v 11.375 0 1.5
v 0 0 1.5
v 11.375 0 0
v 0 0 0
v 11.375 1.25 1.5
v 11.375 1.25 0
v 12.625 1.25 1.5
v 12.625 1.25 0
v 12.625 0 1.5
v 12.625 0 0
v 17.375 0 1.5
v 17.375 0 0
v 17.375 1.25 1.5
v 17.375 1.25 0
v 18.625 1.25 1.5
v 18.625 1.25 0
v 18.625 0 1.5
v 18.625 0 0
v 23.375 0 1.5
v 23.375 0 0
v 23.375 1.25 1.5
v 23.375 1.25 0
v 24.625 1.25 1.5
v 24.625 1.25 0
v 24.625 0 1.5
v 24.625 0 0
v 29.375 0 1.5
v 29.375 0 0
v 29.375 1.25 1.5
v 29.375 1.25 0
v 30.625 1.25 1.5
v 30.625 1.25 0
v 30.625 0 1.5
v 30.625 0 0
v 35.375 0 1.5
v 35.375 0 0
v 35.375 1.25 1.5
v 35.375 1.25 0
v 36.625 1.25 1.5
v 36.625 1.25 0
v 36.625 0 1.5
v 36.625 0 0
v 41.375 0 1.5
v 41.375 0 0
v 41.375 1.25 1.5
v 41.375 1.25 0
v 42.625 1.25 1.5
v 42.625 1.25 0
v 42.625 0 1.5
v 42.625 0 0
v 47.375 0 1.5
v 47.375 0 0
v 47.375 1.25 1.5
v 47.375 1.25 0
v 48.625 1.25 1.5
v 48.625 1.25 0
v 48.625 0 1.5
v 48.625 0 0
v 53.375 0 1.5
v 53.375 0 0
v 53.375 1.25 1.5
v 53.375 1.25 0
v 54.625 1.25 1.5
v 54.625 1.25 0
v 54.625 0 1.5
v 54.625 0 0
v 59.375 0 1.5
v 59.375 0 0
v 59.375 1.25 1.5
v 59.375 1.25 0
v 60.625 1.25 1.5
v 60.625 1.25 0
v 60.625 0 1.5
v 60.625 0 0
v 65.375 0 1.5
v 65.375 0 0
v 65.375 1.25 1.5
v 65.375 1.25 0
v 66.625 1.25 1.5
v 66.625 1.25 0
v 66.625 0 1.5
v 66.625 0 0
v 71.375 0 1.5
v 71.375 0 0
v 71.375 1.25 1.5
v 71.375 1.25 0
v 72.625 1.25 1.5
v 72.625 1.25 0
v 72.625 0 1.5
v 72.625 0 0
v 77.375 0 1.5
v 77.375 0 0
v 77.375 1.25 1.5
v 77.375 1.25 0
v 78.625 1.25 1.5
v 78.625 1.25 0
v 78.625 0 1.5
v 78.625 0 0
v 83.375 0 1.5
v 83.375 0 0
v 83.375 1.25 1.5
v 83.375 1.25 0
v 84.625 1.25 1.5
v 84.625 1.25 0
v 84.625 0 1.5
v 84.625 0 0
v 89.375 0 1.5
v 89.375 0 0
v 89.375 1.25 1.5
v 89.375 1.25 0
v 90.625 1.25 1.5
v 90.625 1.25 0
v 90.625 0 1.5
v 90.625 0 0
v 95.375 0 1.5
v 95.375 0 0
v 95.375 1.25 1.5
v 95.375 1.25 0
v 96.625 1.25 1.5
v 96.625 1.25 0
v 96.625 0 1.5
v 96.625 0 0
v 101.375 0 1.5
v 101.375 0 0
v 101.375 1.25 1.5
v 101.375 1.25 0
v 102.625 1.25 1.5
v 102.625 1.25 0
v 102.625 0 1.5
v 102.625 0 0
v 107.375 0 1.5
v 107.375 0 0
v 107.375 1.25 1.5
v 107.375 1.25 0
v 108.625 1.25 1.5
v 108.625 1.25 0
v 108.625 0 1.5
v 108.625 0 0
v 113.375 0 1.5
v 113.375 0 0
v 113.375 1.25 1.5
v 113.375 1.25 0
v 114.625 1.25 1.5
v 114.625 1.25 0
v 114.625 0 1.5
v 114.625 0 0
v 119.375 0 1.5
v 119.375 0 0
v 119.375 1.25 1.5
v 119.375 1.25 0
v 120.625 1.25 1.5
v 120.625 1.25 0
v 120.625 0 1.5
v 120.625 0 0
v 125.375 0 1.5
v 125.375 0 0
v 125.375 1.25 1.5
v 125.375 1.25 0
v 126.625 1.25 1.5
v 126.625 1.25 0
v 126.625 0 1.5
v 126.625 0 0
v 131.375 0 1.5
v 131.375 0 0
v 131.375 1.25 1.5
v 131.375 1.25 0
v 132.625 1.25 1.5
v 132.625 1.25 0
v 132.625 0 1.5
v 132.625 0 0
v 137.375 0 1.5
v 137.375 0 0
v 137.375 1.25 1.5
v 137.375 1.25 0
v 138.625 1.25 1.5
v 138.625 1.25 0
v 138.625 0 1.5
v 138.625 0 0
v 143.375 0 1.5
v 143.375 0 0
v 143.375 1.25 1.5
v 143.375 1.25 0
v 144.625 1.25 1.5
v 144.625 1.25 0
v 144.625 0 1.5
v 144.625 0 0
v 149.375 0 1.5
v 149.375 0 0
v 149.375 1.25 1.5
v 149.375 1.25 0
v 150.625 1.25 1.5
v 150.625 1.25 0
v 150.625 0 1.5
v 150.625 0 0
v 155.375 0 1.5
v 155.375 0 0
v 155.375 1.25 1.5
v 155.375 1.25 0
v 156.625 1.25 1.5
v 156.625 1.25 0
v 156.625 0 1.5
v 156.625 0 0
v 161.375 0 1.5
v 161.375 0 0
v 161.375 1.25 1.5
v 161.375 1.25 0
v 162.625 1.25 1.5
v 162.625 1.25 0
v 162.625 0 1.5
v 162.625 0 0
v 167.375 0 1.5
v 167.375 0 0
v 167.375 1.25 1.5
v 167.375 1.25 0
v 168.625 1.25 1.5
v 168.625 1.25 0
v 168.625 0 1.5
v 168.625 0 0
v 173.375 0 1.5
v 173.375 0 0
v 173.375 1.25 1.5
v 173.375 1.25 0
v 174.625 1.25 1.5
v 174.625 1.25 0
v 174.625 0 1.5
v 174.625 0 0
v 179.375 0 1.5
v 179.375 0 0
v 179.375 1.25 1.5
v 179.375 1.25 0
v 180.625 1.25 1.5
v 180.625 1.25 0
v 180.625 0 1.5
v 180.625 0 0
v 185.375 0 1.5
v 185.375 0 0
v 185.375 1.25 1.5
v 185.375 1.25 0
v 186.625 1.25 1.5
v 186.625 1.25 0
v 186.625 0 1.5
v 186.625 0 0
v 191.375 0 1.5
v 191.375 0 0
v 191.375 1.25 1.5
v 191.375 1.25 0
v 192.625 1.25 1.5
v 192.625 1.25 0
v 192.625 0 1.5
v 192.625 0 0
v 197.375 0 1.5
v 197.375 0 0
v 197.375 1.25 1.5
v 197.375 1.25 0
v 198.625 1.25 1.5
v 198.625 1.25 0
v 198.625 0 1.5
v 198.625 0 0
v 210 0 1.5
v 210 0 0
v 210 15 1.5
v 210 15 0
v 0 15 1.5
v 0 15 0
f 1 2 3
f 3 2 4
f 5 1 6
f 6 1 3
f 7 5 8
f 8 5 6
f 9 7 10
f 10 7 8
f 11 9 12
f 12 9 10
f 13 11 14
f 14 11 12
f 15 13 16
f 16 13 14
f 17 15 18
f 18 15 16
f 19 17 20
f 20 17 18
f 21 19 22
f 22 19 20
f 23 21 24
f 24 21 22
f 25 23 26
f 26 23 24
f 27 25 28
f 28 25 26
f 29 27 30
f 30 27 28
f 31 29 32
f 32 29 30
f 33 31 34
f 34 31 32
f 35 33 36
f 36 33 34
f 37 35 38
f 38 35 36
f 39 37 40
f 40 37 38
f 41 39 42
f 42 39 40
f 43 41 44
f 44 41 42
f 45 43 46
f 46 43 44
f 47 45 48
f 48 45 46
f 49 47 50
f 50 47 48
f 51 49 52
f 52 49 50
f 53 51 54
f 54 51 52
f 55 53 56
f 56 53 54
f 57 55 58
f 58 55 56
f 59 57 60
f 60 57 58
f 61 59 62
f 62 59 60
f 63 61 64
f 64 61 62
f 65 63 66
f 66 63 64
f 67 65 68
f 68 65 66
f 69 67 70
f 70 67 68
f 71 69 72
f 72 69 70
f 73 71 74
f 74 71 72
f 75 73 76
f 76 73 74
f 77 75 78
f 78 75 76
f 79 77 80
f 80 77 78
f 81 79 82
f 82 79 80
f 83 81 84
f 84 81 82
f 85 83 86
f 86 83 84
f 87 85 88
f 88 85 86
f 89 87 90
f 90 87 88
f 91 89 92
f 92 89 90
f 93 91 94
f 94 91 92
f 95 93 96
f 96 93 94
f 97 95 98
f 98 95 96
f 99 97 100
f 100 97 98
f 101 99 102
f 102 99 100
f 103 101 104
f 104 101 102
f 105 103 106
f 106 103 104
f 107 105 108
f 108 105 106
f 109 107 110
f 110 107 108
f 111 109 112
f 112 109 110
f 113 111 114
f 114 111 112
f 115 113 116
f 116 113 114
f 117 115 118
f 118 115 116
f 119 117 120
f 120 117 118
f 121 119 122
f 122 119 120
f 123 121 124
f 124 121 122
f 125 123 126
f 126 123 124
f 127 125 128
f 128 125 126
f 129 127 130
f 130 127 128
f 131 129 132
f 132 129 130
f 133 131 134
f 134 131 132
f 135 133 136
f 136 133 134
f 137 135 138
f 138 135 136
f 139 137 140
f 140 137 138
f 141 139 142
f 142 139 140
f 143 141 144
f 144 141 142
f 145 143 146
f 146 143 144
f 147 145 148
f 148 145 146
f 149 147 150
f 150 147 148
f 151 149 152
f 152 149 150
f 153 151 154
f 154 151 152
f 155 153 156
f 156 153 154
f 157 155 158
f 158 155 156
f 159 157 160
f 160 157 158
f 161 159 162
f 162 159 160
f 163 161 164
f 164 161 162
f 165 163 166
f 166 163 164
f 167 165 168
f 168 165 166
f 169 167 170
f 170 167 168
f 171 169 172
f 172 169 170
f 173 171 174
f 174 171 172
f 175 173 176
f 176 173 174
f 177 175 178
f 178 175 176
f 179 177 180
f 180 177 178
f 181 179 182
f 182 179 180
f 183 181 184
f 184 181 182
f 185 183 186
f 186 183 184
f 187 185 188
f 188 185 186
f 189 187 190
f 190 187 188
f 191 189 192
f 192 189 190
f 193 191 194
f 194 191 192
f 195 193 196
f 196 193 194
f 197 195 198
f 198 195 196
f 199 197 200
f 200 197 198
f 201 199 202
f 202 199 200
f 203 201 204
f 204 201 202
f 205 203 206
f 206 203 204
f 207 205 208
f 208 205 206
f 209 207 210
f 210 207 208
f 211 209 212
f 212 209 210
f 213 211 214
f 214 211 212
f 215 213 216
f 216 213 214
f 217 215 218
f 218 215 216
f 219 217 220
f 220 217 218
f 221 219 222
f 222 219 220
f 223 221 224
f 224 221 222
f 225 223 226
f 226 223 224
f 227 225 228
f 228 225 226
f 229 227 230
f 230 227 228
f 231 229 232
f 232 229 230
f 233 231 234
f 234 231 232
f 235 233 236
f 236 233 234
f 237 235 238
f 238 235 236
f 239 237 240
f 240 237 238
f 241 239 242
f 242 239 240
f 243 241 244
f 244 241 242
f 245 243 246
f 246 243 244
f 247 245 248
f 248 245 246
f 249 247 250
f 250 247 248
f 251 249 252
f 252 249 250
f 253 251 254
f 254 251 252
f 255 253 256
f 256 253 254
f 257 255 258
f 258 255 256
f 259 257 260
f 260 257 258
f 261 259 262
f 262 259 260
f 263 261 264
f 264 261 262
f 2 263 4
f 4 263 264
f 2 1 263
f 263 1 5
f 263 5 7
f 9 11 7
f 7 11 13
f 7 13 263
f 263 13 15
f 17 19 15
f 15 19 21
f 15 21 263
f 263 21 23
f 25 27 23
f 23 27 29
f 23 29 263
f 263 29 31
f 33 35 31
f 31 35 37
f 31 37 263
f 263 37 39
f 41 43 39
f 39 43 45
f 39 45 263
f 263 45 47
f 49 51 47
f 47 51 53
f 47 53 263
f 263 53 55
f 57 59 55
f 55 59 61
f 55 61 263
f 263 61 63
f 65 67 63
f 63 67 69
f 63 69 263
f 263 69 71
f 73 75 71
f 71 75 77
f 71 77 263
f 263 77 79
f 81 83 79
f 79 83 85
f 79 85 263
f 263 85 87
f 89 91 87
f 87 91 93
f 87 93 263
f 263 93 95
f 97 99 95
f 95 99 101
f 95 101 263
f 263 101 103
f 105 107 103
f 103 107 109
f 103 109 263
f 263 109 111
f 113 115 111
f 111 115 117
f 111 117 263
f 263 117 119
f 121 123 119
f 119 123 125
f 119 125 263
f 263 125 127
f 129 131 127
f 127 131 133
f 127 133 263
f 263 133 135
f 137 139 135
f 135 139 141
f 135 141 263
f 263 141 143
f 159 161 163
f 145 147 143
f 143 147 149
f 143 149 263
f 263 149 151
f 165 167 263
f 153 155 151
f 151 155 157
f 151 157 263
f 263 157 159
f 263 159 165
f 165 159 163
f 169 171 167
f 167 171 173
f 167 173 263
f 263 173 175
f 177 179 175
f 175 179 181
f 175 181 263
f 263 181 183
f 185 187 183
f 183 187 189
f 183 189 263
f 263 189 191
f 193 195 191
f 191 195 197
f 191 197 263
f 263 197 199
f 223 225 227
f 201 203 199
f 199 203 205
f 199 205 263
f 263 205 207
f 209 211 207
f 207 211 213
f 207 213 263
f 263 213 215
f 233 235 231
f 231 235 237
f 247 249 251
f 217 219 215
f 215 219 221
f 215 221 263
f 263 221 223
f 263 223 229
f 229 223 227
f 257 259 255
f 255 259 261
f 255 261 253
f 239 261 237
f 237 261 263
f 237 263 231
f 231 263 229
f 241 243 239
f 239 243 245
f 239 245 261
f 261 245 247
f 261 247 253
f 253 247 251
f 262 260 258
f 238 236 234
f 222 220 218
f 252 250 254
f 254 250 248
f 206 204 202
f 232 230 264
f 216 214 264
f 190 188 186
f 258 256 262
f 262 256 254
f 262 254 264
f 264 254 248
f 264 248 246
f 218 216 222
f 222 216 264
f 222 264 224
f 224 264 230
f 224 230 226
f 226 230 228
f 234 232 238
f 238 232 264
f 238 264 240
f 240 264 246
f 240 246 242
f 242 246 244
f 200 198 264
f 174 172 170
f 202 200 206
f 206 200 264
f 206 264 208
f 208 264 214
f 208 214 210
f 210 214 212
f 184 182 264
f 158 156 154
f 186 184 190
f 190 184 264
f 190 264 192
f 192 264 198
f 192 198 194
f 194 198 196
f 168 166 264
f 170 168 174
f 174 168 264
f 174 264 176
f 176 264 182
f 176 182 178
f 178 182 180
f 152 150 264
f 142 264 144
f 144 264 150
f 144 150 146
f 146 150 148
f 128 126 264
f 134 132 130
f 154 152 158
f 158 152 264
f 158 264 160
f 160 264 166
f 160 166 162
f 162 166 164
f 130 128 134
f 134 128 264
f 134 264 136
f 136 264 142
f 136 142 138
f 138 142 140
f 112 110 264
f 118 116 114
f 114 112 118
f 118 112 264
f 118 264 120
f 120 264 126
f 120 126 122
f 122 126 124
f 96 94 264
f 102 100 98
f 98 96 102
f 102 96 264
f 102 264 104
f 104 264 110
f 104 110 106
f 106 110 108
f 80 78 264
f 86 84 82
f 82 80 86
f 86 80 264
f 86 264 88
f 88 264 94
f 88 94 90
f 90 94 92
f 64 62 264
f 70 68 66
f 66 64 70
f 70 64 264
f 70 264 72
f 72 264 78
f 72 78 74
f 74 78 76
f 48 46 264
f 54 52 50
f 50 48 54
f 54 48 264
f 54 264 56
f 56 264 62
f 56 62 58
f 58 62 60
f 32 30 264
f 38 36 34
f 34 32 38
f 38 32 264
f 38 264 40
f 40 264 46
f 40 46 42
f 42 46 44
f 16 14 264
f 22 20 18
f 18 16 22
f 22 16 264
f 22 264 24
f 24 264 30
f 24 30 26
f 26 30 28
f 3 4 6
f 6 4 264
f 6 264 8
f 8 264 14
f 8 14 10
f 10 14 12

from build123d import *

# Parameters (mm, degrees)
BOSS_EXTRUDE1_DEPTH = 1.5


with BuildPart() as part:
    # Sketch1 → Boss-Extrude1 (new body)
    with BuildSketch(Plane.XY):
        Polygon((0, 0), (0, 15), (210, 15), (210, 0), (198.625, 0), (198.625, 1.25), (197.375, 1.25), (197.375, 0), (192.625, 0), (192.625, 1.25), (191.375, 1.25), (191.375, 0), (186.625, 0), (186.625, 1.25), (185.375, 1.25), (185.375, 0), (180.625, 0), (180.625, 1.25), (179.375, 1.25), (179.375, 0), (174.625, 0), (174.625, 1.25), (173.375, 1.25), (173.375, 0), (168.625, 0), (168.625, 1.25), (167.375, 1.25), (167.375, 0), (162.625, 0), (162.625, 1.25), (161.375, 1.25), (161.375, 0), (156.625, 0), (156.625, 1.25), (155.375, 1.25), (155.375, 0), (150.625, 0), (150.625, 1.25), (149.375, 1.25), (149.375, 0), (144.625, 0), (144.625, 1.25), (143.375, 1.25), (143.375, 0), (138.625, 0), (138.625, 1.25), (137.375, 1.25), (137.375, 0), (132.625, 0), (132.625, 1.25), (131.375, 1.25), (131.375, 0), (126.625, 0), (126.625, 1.25), (125.375, 1.25), (125.375, 0), (120.625, 0), (120.625, 1.25), (119.375, 1.25), (119.375, 0), (114.625, 0), (114.625, 1.25), (113.375, 1.25), (113.375, 0), (108.625, 0), (108.625, 1.25), (107.375, 1.25), (107.375, 0), (102.625, 0), (102.625, 1.25), (101.375, 1.25), (101.375, 0), (96.625, 0), (96.625, 1.25), (95.375, 1.25), (95.375, 0), (90.625, 0), (90.625, 1.25), (89.375, 1.25), (89.375, 0), (84.625, 0), (84.625, 1.25), (83.375, 1.25), (83.375, 0), (78.625, 0), (78.625, 1.25), (77.375, 1.25), (77.375, 0), (72.625, 0), (72.625, 1.25), (71.375, 1.25), (71.375, 0), (66.625, 0), (66.625, 1.25), (65.375, 1.25), (65.375, 0), (60.625, 0), (60.625, 1.25), (59.375, 1.25), (59.375, 0), (54.625, 0), (54.625, 1.25), (53.375, 1.25), (53.375, 0), (48.625, 0), (48.625, 1.25), (47.375, 1.25), (47.375, 0), (42.625, 0), (42.625, 1.25), (41.375, 1.25), (41.375, 0), (36.625, 0), (36.625, 1.25), (35.375, 1.25), (35.375, 0), (30.625, 0), (30.625, 1.25), (29.375, 1.25), (29.375, 0), (24.625, 0), (24.625, 1.25), (23.375, 1.25), (23.375, 0), (18.625, 0), (18.625, 1.25), (17.375, 1.25), (17.375, 0), (12.625, 0), (12.625, 1.25), (11.375, 1.25), (11.375, 0), align=None)
    extrude(amount=BOSS_EXTRUDE1_DEPTH)


solid = part.part
